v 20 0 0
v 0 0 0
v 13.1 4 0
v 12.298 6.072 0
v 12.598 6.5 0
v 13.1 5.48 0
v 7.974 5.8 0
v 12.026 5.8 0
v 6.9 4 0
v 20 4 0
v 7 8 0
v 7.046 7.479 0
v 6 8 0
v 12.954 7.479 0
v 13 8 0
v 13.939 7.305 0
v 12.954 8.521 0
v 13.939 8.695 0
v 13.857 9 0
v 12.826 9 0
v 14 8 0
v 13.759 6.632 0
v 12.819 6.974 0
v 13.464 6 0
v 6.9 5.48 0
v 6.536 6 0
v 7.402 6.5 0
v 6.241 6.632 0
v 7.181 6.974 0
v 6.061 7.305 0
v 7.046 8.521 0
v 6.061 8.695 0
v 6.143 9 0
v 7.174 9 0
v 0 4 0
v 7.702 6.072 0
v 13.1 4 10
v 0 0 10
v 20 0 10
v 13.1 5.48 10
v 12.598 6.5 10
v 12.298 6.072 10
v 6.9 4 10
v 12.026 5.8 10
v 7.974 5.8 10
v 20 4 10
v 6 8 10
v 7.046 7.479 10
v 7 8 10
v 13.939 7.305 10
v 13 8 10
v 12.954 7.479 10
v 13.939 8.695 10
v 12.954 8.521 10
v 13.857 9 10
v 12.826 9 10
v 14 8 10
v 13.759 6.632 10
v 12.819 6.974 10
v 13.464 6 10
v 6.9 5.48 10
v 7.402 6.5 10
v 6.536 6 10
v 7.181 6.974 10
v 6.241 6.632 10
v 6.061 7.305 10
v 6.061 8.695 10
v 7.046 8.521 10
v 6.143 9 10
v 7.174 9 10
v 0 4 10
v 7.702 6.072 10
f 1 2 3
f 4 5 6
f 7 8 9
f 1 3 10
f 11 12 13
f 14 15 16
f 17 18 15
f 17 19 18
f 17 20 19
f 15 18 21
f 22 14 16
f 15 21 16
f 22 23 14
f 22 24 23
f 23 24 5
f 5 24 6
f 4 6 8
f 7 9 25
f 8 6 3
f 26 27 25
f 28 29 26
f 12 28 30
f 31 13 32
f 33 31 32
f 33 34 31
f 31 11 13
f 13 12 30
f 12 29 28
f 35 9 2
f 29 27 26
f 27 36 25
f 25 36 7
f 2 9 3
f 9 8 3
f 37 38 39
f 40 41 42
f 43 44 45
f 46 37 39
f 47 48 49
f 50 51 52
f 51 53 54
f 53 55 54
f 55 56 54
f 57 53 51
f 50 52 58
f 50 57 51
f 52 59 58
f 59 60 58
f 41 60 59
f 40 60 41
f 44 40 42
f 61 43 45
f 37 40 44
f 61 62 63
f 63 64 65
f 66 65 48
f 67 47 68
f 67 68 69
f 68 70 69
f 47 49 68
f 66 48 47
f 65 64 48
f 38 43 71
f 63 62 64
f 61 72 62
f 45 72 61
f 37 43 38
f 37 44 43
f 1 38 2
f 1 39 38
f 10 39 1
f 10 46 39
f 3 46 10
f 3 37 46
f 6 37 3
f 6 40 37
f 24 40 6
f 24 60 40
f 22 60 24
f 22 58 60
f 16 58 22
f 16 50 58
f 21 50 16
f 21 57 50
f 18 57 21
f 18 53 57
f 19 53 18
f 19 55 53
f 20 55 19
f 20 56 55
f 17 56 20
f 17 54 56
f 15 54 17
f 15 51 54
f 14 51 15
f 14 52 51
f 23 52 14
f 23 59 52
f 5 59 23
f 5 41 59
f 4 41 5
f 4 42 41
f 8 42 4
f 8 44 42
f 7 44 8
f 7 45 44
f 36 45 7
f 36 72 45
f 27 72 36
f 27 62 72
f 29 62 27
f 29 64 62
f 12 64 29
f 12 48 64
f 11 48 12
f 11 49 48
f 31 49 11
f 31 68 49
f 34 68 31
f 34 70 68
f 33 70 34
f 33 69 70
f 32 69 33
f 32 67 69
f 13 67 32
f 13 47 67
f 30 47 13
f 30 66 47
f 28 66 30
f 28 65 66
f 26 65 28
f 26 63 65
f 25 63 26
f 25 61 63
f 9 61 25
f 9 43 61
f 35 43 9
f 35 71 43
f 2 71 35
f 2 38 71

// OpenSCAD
$fn=36;

linear_extrude(10) {
   square([20,4]);
    
   translate([10-6.2/2,4]) square([6.2,1.8]);


   difference(){

       difference(){
       translate([10,8]) circle(d=8);

       translate([10,8]) circle(d=6);
       }
       
   translate([0,9]) square([20,20]);
       
   }
}
